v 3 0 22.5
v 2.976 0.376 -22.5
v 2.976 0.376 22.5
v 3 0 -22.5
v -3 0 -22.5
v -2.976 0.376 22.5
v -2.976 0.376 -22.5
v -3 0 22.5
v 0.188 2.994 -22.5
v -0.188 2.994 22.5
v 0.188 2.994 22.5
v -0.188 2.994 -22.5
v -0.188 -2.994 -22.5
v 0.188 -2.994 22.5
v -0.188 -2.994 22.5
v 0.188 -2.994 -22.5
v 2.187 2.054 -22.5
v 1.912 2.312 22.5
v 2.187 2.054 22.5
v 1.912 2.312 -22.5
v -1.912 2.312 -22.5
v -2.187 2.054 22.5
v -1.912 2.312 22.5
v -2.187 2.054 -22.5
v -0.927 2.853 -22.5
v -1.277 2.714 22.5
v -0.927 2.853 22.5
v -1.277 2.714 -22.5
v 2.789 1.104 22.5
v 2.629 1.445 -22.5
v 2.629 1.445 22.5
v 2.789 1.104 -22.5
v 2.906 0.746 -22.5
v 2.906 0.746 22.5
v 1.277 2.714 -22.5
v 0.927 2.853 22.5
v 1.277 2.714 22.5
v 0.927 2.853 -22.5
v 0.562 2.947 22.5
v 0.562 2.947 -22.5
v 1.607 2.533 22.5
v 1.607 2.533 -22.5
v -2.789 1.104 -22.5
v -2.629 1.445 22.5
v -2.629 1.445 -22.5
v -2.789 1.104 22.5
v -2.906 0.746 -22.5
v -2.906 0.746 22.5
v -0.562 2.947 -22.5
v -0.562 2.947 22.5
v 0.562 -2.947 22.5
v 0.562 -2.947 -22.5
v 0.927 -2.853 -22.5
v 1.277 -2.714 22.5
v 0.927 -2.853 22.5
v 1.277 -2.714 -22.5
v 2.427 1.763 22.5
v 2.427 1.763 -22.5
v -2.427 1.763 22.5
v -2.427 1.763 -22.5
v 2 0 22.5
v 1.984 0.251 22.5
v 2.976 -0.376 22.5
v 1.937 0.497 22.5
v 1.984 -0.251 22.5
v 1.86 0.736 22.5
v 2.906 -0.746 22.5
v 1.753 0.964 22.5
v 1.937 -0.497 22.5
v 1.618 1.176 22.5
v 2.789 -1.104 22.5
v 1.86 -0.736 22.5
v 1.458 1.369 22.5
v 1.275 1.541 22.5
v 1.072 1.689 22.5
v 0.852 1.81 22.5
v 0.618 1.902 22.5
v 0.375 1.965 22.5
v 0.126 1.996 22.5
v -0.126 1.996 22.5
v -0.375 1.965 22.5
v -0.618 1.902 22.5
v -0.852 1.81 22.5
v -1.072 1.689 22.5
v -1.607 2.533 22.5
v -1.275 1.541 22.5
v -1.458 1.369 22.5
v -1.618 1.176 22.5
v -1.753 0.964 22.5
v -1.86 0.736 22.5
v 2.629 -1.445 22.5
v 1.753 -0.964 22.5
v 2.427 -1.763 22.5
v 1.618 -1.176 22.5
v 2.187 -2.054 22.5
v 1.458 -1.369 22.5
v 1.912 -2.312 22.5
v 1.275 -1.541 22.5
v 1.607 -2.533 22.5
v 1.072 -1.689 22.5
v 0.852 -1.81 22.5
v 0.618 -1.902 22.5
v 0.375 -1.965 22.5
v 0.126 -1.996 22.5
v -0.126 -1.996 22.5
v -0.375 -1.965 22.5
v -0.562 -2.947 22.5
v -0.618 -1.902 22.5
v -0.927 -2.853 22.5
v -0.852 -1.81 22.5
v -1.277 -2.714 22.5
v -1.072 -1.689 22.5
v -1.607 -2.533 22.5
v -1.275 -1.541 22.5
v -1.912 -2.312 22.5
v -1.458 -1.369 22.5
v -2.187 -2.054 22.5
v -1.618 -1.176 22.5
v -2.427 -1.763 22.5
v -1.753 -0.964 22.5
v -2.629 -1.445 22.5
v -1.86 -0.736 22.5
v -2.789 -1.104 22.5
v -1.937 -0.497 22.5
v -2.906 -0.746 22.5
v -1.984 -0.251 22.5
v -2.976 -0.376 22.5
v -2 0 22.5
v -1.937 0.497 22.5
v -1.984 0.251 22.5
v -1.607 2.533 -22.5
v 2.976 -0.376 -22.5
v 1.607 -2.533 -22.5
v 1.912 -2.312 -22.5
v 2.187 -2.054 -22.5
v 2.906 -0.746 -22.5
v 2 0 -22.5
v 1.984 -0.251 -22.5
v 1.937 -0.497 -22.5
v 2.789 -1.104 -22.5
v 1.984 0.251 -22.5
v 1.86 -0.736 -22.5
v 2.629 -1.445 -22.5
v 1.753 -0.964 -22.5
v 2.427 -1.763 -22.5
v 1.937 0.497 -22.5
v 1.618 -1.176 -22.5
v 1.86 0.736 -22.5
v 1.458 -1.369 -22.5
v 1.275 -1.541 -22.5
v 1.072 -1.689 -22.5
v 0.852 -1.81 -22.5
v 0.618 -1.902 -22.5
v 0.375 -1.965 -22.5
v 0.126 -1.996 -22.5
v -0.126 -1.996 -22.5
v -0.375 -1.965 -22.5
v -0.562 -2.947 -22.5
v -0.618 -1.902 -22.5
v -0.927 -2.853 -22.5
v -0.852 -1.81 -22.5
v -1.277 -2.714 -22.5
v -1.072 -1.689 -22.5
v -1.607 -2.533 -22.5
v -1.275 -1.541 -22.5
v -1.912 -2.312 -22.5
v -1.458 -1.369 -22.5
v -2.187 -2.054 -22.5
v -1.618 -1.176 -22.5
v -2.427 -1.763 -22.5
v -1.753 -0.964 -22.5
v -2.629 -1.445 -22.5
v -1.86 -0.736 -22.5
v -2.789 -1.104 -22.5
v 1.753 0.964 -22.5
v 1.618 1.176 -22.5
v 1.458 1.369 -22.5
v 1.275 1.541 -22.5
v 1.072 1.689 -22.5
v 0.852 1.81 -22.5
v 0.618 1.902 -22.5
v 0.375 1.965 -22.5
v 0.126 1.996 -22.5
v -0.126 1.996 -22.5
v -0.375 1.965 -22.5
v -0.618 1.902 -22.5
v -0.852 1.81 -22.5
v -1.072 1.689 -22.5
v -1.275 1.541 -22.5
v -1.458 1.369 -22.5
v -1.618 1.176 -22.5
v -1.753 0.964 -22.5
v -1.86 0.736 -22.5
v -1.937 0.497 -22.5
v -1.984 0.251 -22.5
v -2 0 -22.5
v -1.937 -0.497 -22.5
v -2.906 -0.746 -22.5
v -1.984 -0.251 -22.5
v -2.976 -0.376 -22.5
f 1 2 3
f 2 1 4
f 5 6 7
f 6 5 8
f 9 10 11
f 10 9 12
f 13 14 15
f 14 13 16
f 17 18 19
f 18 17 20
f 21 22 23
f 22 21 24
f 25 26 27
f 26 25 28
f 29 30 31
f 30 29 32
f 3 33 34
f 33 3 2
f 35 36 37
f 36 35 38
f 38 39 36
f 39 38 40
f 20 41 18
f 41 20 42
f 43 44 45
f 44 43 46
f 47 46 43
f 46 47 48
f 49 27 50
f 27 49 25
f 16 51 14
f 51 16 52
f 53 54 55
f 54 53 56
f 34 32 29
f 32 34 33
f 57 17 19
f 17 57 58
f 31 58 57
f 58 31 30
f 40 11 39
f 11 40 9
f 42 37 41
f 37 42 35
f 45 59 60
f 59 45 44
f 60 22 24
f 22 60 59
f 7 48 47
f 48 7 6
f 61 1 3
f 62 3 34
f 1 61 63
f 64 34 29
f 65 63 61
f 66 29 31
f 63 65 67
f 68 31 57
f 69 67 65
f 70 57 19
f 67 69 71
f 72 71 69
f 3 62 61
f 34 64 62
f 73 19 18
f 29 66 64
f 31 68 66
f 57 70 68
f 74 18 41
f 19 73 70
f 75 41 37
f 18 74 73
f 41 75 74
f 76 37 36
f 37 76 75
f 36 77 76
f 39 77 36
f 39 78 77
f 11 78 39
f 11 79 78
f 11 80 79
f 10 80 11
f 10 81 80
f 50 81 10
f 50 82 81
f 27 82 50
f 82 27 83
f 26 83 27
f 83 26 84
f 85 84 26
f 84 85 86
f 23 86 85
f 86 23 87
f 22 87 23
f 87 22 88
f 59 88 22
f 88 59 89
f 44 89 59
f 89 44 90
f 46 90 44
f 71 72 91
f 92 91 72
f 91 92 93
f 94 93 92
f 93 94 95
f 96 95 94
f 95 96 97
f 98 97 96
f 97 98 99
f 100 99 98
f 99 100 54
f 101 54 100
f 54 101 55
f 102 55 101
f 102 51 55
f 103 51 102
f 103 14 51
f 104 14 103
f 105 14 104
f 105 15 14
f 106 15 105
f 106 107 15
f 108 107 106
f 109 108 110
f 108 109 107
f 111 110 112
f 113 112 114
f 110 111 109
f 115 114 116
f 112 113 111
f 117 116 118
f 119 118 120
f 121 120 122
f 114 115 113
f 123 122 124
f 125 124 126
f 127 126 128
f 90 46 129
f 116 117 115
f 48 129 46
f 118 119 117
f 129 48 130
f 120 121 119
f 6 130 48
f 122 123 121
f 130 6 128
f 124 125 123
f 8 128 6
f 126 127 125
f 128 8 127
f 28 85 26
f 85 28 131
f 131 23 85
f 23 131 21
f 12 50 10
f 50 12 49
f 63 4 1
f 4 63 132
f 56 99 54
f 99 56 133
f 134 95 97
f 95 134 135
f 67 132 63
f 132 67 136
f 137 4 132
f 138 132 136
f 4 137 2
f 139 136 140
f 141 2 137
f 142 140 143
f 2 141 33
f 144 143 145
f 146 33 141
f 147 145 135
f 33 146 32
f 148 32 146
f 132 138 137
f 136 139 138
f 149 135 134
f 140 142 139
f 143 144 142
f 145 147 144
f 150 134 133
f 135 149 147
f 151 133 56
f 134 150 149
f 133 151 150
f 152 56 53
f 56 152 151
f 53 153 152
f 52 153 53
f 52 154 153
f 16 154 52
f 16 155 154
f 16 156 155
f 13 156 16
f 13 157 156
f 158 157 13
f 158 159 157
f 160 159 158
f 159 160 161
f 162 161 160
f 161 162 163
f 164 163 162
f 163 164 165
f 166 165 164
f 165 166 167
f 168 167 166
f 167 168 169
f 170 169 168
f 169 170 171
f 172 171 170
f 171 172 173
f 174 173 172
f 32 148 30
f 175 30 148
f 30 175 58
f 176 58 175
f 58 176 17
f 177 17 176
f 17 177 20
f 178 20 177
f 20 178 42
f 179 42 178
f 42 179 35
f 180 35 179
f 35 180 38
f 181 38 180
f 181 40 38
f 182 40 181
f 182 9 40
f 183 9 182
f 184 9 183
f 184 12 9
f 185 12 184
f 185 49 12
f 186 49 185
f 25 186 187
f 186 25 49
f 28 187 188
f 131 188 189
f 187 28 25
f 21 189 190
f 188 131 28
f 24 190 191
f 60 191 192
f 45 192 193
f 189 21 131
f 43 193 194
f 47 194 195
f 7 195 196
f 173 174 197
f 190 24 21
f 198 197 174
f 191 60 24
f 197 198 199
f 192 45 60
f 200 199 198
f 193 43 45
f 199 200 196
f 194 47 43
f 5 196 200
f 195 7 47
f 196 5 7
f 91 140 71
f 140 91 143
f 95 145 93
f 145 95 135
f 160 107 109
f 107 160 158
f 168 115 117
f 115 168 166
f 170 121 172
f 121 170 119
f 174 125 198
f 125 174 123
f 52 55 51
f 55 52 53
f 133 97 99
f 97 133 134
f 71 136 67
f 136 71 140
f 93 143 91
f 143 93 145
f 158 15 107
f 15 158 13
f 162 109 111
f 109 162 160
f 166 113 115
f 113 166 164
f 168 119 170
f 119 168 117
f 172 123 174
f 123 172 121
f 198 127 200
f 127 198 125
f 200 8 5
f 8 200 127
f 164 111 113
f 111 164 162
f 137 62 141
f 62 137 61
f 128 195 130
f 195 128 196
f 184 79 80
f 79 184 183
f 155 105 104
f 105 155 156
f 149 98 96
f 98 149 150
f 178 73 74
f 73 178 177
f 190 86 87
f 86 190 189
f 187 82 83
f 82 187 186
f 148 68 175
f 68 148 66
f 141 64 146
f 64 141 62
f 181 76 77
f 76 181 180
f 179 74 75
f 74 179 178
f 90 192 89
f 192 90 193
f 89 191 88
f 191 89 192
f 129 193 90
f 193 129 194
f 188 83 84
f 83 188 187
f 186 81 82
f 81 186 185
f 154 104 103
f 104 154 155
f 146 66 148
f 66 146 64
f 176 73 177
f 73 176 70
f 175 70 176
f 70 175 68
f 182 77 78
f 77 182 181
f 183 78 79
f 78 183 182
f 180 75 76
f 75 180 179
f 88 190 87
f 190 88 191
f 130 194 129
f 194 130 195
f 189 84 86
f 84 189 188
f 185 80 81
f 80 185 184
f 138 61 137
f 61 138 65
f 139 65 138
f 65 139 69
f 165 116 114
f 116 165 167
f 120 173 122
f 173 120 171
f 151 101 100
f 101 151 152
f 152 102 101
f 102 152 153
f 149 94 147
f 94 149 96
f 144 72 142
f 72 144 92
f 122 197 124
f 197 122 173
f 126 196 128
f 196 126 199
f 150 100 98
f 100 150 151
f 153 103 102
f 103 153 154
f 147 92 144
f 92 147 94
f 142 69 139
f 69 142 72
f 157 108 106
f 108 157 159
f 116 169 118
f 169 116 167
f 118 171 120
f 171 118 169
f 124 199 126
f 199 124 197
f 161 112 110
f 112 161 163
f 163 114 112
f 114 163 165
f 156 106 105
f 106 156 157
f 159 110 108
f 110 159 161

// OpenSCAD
$fn = 50;


difference() {
	union() {
		translate(v = [0, 0, -22.5000000000]) {
			cylinder(h = 45, r = 3.0000000000);
		}
	}
	union() {
		translate(v = [0, 0, -100.0000000000]) {
			cylinder(h = 200, r = 2);
		}
	}
}
